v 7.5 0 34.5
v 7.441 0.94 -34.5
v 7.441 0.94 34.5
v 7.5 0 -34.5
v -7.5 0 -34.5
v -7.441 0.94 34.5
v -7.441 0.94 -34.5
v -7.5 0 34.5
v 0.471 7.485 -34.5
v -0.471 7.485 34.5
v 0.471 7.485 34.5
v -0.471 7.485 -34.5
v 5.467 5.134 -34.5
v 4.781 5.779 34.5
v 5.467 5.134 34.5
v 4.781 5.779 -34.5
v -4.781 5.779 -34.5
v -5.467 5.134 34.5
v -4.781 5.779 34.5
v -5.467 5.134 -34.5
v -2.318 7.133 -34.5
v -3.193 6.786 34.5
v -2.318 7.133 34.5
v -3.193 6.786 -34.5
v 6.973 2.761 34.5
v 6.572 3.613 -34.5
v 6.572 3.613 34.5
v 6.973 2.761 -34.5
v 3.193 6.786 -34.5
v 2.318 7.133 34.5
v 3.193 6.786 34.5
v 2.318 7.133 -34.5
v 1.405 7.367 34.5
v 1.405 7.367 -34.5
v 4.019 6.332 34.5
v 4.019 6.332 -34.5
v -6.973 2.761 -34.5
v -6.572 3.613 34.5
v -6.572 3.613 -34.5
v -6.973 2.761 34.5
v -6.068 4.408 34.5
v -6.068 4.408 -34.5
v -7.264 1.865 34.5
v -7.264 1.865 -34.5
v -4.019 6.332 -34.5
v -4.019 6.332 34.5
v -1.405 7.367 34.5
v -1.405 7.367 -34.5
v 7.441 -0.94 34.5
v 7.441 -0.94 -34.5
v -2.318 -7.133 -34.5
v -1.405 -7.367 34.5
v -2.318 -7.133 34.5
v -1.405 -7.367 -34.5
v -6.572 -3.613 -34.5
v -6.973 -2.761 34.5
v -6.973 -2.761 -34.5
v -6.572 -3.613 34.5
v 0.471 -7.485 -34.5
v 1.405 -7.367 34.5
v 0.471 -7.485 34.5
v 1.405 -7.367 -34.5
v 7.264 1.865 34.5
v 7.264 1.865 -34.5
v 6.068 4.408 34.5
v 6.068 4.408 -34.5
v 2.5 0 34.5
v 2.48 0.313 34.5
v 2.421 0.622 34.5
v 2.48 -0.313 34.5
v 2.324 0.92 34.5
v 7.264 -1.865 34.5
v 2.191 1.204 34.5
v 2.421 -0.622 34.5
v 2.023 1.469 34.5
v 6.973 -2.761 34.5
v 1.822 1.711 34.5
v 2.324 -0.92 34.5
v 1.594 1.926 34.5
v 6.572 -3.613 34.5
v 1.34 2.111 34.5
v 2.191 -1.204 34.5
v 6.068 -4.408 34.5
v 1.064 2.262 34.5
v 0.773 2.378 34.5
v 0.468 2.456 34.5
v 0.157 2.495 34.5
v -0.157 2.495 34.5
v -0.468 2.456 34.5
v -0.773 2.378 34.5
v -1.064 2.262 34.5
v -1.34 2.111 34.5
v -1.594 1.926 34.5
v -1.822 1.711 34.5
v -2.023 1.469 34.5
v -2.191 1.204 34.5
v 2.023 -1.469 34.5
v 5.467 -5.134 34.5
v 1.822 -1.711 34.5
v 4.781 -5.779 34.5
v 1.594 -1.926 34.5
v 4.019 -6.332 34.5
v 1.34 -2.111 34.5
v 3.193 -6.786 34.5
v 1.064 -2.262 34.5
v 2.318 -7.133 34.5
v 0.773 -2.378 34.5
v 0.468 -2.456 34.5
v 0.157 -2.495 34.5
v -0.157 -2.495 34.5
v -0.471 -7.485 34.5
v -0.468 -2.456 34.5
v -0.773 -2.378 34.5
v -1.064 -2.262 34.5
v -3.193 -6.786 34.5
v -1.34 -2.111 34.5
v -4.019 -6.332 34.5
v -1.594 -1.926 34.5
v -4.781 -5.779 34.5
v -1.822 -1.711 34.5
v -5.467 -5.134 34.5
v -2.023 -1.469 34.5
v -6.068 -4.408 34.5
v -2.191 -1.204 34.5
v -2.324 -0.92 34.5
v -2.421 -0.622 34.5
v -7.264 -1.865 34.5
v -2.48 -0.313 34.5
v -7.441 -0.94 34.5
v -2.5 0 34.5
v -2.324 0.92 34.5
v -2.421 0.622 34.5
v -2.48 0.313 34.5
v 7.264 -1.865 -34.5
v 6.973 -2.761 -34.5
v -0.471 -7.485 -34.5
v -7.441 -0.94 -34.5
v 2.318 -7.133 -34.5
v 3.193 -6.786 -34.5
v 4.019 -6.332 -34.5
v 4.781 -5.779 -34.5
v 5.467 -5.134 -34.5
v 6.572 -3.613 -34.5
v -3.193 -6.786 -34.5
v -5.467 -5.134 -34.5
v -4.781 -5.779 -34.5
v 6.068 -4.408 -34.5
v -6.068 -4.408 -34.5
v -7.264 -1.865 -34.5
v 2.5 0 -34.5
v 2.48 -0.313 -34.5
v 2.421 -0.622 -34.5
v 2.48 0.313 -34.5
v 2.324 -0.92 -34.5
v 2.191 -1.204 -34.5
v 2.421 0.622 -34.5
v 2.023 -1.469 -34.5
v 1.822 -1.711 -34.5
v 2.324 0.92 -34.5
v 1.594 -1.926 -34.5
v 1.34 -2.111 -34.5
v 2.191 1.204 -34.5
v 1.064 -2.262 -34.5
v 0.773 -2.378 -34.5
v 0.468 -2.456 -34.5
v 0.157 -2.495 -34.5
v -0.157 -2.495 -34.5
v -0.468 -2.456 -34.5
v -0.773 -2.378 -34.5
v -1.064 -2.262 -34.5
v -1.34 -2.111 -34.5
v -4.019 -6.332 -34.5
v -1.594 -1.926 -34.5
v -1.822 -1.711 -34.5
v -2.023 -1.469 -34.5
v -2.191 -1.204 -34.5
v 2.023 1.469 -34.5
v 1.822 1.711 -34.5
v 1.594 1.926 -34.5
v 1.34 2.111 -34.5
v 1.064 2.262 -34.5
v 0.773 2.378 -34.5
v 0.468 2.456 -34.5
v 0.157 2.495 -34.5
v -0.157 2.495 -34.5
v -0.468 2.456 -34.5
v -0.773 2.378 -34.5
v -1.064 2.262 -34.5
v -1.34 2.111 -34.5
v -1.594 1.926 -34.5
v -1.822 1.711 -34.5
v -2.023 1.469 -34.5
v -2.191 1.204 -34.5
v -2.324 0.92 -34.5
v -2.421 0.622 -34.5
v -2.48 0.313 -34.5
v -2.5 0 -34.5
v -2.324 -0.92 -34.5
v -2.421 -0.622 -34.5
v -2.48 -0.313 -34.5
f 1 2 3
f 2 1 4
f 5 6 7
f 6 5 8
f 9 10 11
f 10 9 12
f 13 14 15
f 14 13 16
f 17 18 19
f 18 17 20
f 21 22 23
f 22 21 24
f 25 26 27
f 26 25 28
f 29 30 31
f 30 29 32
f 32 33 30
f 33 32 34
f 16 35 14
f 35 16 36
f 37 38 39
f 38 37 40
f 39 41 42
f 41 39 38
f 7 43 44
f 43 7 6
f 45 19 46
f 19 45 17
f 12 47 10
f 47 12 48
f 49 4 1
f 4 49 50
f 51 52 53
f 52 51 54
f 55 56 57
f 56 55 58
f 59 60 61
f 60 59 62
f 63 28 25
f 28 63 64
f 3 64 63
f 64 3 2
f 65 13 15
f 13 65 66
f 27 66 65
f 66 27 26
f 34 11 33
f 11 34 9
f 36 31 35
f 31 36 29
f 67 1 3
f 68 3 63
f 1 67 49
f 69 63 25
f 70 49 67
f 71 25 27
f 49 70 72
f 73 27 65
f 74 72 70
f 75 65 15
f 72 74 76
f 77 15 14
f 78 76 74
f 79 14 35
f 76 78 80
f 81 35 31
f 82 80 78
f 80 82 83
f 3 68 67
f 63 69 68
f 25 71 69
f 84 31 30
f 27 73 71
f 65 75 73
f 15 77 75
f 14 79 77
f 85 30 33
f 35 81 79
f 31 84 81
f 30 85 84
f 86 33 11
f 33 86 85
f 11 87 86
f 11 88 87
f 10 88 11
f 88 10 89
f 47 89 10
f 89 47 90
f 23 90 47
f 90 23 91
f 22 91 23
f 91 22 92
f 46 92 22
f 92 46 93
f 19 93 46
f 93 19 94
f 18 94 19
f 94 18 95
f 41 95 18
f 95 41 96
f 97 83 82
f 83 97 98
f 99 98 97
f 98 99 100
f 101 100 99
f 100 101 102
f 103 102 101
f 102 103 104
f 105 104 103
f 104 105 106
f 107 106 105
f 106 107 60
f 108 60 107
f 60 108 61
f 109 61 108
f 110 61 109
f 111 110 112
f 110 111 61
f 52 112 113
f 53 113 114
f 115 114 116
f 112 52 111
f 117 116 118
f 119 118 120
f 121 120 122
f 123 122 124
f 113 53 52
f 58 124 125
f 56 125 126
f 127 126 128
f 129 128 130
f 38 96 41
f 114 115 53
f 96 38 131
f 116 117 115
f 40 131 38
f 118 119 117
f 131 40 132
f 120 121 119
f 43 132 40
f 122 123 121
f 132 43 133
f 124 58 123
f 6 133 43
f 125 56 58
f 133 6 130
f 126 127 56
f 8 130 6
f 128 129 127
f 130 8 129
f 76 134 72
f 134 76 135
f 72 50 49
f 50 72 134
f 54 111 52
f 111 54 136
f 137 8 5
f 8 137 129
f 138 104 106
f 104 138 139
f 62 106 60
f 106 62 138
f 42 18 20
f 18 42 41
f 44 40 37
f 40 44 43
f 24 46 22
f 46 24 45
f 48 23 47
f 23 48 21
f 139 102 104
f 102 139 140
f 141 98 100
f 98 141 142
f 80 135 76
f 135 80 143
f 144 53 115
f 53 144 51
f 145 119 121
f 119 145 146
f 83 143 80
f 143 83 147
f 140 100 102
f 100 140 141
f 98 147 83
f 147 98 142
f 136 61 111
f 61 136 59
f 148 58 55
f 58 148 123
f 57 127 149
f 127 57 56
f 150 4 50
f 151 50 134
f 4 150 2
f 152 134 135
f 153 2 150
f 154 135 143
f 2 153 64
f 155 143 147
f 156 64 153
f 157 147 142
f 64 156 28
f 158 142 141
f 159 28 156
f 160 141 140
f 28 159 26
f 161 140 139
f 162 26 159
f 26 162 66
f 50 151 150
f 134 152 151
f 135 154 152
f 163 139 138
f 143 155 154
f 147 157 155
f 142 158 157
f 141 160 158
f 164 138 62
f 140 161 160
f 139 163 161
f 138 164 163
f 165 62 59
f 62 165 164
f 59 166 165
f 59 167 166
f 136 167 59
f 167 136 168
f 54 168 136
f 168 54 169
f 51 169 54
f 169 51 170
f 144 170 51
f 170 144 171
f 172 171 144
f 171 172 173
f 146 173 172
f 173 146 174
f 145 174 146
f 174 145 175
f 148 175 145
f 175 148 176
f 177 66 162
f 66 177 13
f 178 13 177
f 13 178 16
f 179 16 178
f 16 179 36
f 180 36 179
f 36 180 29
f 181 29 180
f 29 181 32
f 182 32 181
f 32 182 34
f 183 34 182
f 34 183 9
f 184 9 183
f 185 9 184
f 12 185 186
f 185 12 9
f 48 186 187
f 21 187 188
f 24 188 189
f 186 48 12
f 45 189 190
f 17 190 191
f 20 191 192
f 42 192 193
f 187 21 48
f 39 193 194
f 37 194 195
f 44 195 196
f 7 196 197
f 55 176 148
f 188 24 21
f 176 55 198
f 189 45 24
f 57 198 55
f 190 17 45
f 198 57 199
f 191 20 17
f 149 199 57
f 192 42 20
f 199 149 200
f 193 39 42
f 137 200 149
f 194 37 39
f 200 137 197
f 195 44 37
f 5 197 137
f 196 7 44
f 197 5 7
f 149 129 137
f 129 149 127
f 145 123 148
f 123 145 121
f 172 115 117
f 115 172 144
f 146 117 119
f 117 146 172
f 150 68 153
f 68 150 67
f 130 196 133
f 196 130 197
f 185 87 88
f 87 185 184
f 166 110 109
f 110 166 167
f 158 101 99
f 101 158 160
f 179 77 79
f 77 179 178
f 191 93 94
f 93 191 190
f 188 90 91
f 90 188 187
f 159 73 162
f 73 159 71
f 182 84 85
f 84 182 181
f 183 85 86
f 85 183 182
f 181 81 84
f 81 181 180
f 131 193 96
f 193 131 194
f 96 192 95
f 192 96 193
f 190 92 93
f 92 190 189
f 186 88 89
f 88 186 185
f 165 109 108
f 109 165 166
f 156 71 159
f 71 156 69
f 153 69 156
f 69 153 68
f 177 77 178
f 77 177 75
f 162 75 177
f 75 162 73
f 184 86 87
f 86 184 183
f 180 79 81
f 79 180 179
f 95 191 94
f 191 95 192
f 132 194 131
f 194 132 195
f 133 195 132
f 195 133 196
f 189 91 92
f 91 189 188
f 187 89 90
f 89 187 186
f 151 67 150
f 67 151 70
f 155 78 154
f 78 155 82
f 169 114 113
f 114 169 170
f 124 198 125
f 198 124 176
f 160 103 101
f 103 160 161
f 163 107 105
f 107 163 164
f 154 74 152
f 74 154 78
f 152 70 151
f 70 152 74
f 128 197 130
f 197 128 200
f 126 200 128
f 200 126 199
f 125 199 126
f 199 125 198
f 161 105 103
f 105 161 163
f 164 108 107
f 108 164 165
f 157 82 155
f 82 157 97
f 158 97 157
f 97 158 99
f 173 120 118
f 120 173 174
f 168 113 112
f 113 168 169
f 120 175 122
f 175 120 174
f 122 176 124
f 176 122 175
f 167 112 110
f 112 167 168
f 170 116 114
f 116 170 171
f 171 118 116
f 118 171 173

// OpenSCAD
$fn = 50;


difference() {
	union() {
		translate(v = [0, 0, -34.5000000000]) {
			cylinder(h = 69, r = 7.5000000000);
		}
	}
	union() {
		translate(v = [0, 0, -100.0000000000]) {
			cylinder(h = 200, r = 2.5000000000);
		}
	}
}
